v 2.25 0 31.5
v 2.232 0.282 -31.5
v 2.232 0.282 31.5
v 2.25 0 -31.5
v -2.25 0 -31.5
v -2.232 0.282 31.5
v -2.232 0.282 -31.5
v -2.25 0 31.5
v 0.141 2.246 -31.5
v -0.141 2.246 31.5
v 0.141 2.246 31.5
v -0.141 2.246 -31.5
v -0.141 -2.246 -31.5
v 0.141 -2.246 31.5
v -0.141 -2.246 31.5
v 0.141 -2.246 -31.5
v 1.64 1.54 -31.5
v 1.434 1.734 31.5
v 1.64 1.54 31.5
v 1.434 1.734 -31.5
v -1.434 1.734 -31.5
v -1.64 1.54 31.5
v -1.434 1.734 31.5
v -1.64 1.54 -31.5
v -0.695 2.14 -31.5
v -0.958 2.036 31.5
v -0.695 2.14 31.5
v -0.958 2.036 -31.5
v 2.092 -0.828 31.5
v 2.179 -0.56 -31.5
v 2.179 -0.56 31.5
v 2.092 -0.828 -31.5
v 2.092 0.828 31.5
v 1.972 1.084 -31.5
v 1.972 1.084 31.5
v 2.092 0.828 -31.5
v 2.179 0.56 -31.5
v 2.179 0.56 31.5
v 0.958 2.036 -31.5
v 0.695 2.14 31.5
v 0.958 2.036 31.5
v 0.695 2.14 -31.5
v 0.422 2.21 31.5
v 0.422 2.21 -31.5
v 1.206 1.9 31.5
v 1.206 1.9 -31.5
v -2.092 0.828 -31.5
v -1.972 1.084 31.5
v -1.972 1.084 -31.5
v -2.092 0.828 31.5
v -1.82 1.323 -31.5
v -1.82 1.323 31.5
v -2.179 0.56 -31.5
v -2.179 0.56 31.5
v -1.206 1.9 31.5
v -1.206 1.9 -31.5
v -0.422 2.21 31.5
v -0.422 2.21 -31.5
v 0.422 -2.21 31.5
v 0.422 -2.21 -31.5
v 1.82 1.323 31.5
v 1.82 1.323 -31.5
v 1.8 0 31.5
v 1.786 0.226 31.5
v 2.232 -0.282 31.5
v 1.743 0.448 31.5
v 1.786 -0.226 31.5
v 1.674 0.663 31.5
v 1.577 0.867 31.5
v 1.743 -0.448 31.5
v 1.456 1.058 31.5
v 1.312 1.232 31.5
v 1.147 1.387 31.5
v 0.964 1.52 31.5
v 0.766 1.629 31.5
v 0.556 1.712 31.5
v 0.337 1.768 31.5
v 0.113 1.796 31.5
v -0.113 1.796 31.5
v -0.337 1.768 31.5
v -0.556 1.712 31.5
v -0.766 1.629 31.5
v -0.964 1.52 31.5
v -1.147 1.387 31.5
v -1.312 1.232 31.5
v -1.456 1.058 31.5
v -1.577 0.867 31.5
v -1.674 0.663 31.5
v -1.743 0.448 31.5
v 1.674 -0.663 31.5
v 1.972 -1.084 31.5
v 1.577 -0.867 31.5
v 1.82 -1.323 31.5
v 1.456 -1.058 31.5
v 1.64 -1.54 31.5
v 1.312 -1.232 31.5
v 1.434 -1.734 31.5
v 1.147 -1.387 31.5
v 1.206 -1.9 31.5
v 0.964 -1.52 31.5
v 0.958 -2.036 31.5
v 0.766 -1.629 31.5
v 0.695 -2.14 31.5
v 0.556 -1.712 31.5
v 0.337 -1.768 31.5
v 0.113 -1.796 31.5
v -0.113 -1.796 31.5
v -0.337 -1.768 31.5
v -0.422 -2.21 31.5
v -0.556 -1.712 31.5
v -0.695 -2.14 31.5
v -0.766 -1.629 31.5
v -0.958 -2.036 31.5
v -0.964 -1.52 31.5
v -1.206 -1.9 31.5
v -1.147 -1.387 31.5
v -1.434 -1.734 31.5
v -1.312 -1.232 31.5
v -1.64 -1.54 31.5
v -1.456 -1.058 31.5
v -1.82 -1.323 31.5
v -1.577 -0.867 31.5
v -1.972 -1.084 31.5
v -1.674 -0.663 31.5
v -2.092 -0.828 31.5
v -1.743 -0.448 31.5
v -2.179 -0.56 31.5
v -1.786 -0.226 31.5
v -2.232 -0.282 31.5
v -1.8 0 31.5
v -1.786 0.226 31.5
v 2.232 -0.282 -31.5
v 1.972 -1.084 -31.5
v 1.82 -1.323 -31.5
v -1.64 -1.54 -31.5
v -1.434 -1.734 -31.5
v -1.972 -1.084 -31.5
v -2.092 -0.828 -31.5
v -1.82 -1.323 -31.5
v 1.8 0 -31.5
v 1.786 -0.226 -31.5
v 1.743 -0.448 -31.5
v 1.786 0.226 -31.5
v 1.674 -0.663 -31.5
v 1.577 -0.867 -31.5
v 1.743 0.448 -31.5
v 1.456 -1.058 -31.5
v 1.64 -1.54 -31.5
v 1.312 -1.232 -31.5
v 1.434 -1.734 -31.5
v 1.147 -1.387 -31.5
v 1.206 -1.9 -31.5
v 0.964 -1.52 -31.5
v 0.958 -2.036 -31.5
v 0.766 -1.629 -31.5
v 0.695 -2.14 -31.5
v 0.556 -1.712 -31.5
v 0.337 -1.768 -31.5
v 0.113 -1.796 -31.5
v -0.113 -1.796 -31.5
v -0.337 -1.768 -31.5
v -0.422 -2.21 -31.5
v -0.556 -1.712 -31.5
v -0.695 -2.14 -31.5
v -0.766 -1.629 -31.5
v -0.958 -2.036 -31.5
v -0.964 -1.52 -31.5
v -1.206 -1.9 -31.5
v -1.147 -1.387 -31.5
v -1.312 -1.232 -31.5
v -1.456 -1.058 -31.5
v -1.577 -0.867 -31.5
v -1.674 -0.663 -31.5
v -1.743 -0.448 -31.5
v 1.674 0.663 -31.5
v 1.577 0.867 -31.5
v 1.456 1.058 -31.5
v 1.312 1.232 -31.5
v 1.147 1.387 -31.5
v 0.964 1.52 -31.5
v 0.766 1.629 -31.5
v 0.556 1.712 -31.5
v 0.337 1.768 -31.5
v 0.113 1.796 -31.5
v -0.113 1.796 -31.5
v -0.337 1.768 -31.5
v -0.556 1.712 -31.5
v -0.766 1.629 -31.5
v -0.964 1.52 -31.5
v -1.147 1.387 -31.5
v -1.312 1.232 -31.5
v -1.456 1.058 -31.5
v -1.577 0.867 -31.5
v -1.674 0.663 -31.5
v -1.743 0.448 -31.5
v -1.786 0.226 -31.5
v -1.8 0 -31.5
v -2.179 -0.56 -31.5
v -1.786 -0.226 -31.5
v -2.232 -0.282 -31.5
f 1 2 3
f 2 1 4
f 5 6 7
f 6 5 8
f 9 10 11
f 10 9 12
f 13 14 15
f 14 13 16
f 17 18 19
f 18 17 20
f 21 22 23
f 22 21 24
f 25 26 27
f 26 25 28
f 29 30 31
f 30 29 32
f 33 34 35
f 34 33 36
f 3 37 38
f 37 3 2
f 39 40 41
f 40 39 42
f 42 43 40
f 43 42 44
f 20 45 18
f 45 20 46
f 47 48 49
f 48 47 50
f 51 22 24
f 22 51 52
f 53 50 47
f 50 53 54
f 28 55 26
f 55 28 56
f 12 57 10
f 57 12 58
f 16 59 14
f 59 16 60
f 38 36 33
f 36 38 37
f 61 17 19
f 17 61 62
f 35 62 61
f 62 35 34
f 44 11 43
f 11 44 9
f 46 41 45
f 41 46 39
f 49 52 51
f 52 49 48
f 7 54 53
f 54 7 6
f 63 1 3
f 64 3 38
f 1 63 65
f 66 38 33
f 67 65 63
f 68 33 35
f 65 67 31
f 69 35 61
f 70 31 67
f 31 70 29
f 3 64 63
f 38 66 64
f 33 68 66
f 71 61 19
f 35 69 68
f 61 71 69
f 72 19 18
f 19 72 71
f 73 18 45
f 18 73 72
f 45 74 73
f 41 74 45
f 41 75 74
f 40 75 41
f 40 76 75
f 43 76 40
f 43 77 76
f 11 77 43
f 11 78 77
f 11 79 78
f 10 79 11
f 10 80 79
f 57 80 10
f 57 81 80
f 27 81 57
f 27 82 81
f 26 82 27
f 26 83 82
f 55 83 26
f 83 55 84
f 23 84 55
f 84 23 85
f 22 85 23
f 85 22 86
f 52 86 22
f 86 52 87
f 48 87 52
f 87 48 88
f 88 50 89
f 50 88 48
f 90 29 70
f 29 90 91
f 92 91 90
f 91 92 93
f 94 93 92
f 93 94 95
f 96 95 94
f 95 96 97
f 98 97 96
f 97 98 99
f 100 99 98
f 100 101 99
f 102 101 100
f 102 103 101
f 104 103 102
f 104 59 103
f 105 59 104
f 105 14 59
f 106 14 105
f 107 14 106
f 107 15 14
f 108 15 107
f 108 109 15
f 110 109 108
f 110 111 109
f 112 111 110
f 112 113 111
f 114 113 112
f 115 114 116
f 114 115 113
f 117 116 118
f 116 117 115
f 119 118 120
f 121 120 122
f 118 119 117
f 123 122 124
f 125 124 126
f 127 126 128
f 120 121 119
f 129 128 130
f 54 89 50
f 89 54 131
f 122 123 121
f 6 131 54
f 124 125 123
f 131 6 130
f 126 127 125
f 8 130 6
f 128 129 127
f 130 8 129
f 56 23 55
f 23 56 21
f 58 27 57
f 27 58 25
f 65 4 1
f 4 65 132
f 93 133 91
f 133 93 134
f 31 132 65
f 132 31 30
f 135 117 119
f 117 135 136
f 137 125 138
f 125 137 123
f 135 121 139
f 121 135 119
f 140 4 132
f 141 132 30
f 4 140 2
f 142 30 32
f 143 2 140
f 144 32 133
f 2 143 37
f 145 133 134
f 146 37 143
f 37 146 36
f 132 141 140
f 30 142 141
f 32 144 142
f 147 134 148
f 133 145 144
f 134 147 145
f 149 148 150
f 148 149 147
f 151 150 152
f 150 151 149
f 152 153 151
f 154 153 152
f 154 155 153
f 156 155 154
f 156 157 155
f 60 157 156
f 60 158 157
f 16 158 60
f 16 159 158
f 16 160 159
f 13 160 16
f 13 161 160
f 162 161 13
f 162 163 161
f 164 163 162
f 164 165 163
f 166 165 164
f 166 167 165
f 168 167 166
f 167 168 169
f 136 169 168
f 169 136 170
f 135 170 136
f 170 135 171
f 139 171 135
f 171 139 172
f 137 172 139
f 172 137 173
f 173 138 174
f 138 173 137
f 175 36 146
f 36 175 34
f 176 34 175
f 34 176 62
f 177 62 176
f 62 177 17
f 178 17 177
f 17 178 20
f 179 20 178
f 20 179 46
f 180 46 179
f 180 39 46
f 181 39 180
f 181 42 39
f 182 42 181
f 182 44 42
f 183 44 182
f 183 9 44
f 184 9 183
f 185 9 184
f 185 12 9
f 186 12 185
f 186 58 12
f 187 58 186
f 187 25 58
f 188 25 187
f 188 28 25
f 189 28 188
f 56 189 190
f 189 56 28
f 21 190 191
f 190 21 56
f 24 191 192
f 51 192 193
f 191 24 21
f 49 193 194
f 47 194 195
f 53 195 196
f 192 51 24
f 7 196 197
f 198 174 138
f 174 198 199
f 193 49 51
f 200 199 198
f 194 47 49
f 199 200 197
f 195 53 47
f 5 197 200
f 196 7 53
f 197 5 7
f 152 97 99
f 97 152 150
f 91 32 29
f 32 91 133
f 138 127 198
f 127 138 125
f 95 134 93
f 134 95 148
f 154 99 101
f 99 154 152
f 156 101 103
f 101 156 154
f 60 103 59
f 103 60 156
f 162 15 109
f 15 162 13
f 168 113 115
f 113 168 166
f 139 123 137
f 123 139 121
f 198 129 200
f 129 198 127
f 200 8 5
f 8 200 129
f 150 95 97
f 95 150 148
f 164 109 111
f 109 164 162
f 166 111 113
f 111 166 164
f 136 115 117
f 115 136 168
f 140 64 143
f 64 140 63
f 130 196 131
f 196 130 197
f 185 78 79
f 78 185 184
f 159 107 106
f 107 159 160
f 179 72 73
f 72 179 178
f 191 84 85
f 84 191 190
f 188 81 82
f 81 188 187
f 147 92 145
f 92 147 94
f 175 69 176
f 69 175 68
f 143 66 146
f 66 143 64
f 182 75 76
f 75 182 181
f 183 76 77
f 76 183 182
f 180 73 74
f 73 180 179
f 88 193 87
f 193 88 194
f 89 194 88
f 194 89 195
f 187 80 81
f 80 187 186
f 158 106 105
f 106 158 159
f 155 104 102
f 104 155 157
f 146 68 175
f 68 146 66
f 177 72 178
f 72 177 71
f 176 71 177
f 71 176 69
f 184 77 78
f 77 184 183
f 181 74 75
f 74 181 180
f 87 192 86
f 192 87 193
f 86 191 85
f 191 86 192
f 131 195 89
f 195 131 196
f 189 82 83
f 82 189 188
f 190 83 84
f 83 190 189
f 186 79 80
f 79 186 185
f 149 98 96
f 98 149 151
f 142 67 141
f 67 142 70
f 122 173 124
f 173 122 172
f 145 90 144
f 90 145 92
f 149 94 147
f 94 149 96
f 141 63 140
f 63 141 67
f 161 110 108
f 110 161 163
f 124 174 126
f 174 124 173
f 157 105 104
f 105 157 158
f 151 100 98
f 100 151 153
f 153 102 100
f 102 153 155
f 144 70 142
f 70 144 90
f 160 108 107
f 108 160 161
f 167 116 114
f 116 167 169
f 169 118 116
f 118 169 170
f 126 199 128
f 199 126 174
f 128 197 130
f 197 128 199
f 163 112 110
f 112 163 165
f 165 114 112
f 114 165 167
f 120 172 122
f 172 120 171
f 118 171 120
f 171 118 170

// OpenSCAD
$fn = 50;


difference() {
	union() {
		translate(v = [0, 0, -31.5000000000]) {
			cylinder(h = 63, r = 2.2500000000);
		}
	}
	union() {
		translate(v = [0, 0, -100.0000000000]) {
			cylinder(h = 200, r = 1.8000000000);
		}
	}
}
